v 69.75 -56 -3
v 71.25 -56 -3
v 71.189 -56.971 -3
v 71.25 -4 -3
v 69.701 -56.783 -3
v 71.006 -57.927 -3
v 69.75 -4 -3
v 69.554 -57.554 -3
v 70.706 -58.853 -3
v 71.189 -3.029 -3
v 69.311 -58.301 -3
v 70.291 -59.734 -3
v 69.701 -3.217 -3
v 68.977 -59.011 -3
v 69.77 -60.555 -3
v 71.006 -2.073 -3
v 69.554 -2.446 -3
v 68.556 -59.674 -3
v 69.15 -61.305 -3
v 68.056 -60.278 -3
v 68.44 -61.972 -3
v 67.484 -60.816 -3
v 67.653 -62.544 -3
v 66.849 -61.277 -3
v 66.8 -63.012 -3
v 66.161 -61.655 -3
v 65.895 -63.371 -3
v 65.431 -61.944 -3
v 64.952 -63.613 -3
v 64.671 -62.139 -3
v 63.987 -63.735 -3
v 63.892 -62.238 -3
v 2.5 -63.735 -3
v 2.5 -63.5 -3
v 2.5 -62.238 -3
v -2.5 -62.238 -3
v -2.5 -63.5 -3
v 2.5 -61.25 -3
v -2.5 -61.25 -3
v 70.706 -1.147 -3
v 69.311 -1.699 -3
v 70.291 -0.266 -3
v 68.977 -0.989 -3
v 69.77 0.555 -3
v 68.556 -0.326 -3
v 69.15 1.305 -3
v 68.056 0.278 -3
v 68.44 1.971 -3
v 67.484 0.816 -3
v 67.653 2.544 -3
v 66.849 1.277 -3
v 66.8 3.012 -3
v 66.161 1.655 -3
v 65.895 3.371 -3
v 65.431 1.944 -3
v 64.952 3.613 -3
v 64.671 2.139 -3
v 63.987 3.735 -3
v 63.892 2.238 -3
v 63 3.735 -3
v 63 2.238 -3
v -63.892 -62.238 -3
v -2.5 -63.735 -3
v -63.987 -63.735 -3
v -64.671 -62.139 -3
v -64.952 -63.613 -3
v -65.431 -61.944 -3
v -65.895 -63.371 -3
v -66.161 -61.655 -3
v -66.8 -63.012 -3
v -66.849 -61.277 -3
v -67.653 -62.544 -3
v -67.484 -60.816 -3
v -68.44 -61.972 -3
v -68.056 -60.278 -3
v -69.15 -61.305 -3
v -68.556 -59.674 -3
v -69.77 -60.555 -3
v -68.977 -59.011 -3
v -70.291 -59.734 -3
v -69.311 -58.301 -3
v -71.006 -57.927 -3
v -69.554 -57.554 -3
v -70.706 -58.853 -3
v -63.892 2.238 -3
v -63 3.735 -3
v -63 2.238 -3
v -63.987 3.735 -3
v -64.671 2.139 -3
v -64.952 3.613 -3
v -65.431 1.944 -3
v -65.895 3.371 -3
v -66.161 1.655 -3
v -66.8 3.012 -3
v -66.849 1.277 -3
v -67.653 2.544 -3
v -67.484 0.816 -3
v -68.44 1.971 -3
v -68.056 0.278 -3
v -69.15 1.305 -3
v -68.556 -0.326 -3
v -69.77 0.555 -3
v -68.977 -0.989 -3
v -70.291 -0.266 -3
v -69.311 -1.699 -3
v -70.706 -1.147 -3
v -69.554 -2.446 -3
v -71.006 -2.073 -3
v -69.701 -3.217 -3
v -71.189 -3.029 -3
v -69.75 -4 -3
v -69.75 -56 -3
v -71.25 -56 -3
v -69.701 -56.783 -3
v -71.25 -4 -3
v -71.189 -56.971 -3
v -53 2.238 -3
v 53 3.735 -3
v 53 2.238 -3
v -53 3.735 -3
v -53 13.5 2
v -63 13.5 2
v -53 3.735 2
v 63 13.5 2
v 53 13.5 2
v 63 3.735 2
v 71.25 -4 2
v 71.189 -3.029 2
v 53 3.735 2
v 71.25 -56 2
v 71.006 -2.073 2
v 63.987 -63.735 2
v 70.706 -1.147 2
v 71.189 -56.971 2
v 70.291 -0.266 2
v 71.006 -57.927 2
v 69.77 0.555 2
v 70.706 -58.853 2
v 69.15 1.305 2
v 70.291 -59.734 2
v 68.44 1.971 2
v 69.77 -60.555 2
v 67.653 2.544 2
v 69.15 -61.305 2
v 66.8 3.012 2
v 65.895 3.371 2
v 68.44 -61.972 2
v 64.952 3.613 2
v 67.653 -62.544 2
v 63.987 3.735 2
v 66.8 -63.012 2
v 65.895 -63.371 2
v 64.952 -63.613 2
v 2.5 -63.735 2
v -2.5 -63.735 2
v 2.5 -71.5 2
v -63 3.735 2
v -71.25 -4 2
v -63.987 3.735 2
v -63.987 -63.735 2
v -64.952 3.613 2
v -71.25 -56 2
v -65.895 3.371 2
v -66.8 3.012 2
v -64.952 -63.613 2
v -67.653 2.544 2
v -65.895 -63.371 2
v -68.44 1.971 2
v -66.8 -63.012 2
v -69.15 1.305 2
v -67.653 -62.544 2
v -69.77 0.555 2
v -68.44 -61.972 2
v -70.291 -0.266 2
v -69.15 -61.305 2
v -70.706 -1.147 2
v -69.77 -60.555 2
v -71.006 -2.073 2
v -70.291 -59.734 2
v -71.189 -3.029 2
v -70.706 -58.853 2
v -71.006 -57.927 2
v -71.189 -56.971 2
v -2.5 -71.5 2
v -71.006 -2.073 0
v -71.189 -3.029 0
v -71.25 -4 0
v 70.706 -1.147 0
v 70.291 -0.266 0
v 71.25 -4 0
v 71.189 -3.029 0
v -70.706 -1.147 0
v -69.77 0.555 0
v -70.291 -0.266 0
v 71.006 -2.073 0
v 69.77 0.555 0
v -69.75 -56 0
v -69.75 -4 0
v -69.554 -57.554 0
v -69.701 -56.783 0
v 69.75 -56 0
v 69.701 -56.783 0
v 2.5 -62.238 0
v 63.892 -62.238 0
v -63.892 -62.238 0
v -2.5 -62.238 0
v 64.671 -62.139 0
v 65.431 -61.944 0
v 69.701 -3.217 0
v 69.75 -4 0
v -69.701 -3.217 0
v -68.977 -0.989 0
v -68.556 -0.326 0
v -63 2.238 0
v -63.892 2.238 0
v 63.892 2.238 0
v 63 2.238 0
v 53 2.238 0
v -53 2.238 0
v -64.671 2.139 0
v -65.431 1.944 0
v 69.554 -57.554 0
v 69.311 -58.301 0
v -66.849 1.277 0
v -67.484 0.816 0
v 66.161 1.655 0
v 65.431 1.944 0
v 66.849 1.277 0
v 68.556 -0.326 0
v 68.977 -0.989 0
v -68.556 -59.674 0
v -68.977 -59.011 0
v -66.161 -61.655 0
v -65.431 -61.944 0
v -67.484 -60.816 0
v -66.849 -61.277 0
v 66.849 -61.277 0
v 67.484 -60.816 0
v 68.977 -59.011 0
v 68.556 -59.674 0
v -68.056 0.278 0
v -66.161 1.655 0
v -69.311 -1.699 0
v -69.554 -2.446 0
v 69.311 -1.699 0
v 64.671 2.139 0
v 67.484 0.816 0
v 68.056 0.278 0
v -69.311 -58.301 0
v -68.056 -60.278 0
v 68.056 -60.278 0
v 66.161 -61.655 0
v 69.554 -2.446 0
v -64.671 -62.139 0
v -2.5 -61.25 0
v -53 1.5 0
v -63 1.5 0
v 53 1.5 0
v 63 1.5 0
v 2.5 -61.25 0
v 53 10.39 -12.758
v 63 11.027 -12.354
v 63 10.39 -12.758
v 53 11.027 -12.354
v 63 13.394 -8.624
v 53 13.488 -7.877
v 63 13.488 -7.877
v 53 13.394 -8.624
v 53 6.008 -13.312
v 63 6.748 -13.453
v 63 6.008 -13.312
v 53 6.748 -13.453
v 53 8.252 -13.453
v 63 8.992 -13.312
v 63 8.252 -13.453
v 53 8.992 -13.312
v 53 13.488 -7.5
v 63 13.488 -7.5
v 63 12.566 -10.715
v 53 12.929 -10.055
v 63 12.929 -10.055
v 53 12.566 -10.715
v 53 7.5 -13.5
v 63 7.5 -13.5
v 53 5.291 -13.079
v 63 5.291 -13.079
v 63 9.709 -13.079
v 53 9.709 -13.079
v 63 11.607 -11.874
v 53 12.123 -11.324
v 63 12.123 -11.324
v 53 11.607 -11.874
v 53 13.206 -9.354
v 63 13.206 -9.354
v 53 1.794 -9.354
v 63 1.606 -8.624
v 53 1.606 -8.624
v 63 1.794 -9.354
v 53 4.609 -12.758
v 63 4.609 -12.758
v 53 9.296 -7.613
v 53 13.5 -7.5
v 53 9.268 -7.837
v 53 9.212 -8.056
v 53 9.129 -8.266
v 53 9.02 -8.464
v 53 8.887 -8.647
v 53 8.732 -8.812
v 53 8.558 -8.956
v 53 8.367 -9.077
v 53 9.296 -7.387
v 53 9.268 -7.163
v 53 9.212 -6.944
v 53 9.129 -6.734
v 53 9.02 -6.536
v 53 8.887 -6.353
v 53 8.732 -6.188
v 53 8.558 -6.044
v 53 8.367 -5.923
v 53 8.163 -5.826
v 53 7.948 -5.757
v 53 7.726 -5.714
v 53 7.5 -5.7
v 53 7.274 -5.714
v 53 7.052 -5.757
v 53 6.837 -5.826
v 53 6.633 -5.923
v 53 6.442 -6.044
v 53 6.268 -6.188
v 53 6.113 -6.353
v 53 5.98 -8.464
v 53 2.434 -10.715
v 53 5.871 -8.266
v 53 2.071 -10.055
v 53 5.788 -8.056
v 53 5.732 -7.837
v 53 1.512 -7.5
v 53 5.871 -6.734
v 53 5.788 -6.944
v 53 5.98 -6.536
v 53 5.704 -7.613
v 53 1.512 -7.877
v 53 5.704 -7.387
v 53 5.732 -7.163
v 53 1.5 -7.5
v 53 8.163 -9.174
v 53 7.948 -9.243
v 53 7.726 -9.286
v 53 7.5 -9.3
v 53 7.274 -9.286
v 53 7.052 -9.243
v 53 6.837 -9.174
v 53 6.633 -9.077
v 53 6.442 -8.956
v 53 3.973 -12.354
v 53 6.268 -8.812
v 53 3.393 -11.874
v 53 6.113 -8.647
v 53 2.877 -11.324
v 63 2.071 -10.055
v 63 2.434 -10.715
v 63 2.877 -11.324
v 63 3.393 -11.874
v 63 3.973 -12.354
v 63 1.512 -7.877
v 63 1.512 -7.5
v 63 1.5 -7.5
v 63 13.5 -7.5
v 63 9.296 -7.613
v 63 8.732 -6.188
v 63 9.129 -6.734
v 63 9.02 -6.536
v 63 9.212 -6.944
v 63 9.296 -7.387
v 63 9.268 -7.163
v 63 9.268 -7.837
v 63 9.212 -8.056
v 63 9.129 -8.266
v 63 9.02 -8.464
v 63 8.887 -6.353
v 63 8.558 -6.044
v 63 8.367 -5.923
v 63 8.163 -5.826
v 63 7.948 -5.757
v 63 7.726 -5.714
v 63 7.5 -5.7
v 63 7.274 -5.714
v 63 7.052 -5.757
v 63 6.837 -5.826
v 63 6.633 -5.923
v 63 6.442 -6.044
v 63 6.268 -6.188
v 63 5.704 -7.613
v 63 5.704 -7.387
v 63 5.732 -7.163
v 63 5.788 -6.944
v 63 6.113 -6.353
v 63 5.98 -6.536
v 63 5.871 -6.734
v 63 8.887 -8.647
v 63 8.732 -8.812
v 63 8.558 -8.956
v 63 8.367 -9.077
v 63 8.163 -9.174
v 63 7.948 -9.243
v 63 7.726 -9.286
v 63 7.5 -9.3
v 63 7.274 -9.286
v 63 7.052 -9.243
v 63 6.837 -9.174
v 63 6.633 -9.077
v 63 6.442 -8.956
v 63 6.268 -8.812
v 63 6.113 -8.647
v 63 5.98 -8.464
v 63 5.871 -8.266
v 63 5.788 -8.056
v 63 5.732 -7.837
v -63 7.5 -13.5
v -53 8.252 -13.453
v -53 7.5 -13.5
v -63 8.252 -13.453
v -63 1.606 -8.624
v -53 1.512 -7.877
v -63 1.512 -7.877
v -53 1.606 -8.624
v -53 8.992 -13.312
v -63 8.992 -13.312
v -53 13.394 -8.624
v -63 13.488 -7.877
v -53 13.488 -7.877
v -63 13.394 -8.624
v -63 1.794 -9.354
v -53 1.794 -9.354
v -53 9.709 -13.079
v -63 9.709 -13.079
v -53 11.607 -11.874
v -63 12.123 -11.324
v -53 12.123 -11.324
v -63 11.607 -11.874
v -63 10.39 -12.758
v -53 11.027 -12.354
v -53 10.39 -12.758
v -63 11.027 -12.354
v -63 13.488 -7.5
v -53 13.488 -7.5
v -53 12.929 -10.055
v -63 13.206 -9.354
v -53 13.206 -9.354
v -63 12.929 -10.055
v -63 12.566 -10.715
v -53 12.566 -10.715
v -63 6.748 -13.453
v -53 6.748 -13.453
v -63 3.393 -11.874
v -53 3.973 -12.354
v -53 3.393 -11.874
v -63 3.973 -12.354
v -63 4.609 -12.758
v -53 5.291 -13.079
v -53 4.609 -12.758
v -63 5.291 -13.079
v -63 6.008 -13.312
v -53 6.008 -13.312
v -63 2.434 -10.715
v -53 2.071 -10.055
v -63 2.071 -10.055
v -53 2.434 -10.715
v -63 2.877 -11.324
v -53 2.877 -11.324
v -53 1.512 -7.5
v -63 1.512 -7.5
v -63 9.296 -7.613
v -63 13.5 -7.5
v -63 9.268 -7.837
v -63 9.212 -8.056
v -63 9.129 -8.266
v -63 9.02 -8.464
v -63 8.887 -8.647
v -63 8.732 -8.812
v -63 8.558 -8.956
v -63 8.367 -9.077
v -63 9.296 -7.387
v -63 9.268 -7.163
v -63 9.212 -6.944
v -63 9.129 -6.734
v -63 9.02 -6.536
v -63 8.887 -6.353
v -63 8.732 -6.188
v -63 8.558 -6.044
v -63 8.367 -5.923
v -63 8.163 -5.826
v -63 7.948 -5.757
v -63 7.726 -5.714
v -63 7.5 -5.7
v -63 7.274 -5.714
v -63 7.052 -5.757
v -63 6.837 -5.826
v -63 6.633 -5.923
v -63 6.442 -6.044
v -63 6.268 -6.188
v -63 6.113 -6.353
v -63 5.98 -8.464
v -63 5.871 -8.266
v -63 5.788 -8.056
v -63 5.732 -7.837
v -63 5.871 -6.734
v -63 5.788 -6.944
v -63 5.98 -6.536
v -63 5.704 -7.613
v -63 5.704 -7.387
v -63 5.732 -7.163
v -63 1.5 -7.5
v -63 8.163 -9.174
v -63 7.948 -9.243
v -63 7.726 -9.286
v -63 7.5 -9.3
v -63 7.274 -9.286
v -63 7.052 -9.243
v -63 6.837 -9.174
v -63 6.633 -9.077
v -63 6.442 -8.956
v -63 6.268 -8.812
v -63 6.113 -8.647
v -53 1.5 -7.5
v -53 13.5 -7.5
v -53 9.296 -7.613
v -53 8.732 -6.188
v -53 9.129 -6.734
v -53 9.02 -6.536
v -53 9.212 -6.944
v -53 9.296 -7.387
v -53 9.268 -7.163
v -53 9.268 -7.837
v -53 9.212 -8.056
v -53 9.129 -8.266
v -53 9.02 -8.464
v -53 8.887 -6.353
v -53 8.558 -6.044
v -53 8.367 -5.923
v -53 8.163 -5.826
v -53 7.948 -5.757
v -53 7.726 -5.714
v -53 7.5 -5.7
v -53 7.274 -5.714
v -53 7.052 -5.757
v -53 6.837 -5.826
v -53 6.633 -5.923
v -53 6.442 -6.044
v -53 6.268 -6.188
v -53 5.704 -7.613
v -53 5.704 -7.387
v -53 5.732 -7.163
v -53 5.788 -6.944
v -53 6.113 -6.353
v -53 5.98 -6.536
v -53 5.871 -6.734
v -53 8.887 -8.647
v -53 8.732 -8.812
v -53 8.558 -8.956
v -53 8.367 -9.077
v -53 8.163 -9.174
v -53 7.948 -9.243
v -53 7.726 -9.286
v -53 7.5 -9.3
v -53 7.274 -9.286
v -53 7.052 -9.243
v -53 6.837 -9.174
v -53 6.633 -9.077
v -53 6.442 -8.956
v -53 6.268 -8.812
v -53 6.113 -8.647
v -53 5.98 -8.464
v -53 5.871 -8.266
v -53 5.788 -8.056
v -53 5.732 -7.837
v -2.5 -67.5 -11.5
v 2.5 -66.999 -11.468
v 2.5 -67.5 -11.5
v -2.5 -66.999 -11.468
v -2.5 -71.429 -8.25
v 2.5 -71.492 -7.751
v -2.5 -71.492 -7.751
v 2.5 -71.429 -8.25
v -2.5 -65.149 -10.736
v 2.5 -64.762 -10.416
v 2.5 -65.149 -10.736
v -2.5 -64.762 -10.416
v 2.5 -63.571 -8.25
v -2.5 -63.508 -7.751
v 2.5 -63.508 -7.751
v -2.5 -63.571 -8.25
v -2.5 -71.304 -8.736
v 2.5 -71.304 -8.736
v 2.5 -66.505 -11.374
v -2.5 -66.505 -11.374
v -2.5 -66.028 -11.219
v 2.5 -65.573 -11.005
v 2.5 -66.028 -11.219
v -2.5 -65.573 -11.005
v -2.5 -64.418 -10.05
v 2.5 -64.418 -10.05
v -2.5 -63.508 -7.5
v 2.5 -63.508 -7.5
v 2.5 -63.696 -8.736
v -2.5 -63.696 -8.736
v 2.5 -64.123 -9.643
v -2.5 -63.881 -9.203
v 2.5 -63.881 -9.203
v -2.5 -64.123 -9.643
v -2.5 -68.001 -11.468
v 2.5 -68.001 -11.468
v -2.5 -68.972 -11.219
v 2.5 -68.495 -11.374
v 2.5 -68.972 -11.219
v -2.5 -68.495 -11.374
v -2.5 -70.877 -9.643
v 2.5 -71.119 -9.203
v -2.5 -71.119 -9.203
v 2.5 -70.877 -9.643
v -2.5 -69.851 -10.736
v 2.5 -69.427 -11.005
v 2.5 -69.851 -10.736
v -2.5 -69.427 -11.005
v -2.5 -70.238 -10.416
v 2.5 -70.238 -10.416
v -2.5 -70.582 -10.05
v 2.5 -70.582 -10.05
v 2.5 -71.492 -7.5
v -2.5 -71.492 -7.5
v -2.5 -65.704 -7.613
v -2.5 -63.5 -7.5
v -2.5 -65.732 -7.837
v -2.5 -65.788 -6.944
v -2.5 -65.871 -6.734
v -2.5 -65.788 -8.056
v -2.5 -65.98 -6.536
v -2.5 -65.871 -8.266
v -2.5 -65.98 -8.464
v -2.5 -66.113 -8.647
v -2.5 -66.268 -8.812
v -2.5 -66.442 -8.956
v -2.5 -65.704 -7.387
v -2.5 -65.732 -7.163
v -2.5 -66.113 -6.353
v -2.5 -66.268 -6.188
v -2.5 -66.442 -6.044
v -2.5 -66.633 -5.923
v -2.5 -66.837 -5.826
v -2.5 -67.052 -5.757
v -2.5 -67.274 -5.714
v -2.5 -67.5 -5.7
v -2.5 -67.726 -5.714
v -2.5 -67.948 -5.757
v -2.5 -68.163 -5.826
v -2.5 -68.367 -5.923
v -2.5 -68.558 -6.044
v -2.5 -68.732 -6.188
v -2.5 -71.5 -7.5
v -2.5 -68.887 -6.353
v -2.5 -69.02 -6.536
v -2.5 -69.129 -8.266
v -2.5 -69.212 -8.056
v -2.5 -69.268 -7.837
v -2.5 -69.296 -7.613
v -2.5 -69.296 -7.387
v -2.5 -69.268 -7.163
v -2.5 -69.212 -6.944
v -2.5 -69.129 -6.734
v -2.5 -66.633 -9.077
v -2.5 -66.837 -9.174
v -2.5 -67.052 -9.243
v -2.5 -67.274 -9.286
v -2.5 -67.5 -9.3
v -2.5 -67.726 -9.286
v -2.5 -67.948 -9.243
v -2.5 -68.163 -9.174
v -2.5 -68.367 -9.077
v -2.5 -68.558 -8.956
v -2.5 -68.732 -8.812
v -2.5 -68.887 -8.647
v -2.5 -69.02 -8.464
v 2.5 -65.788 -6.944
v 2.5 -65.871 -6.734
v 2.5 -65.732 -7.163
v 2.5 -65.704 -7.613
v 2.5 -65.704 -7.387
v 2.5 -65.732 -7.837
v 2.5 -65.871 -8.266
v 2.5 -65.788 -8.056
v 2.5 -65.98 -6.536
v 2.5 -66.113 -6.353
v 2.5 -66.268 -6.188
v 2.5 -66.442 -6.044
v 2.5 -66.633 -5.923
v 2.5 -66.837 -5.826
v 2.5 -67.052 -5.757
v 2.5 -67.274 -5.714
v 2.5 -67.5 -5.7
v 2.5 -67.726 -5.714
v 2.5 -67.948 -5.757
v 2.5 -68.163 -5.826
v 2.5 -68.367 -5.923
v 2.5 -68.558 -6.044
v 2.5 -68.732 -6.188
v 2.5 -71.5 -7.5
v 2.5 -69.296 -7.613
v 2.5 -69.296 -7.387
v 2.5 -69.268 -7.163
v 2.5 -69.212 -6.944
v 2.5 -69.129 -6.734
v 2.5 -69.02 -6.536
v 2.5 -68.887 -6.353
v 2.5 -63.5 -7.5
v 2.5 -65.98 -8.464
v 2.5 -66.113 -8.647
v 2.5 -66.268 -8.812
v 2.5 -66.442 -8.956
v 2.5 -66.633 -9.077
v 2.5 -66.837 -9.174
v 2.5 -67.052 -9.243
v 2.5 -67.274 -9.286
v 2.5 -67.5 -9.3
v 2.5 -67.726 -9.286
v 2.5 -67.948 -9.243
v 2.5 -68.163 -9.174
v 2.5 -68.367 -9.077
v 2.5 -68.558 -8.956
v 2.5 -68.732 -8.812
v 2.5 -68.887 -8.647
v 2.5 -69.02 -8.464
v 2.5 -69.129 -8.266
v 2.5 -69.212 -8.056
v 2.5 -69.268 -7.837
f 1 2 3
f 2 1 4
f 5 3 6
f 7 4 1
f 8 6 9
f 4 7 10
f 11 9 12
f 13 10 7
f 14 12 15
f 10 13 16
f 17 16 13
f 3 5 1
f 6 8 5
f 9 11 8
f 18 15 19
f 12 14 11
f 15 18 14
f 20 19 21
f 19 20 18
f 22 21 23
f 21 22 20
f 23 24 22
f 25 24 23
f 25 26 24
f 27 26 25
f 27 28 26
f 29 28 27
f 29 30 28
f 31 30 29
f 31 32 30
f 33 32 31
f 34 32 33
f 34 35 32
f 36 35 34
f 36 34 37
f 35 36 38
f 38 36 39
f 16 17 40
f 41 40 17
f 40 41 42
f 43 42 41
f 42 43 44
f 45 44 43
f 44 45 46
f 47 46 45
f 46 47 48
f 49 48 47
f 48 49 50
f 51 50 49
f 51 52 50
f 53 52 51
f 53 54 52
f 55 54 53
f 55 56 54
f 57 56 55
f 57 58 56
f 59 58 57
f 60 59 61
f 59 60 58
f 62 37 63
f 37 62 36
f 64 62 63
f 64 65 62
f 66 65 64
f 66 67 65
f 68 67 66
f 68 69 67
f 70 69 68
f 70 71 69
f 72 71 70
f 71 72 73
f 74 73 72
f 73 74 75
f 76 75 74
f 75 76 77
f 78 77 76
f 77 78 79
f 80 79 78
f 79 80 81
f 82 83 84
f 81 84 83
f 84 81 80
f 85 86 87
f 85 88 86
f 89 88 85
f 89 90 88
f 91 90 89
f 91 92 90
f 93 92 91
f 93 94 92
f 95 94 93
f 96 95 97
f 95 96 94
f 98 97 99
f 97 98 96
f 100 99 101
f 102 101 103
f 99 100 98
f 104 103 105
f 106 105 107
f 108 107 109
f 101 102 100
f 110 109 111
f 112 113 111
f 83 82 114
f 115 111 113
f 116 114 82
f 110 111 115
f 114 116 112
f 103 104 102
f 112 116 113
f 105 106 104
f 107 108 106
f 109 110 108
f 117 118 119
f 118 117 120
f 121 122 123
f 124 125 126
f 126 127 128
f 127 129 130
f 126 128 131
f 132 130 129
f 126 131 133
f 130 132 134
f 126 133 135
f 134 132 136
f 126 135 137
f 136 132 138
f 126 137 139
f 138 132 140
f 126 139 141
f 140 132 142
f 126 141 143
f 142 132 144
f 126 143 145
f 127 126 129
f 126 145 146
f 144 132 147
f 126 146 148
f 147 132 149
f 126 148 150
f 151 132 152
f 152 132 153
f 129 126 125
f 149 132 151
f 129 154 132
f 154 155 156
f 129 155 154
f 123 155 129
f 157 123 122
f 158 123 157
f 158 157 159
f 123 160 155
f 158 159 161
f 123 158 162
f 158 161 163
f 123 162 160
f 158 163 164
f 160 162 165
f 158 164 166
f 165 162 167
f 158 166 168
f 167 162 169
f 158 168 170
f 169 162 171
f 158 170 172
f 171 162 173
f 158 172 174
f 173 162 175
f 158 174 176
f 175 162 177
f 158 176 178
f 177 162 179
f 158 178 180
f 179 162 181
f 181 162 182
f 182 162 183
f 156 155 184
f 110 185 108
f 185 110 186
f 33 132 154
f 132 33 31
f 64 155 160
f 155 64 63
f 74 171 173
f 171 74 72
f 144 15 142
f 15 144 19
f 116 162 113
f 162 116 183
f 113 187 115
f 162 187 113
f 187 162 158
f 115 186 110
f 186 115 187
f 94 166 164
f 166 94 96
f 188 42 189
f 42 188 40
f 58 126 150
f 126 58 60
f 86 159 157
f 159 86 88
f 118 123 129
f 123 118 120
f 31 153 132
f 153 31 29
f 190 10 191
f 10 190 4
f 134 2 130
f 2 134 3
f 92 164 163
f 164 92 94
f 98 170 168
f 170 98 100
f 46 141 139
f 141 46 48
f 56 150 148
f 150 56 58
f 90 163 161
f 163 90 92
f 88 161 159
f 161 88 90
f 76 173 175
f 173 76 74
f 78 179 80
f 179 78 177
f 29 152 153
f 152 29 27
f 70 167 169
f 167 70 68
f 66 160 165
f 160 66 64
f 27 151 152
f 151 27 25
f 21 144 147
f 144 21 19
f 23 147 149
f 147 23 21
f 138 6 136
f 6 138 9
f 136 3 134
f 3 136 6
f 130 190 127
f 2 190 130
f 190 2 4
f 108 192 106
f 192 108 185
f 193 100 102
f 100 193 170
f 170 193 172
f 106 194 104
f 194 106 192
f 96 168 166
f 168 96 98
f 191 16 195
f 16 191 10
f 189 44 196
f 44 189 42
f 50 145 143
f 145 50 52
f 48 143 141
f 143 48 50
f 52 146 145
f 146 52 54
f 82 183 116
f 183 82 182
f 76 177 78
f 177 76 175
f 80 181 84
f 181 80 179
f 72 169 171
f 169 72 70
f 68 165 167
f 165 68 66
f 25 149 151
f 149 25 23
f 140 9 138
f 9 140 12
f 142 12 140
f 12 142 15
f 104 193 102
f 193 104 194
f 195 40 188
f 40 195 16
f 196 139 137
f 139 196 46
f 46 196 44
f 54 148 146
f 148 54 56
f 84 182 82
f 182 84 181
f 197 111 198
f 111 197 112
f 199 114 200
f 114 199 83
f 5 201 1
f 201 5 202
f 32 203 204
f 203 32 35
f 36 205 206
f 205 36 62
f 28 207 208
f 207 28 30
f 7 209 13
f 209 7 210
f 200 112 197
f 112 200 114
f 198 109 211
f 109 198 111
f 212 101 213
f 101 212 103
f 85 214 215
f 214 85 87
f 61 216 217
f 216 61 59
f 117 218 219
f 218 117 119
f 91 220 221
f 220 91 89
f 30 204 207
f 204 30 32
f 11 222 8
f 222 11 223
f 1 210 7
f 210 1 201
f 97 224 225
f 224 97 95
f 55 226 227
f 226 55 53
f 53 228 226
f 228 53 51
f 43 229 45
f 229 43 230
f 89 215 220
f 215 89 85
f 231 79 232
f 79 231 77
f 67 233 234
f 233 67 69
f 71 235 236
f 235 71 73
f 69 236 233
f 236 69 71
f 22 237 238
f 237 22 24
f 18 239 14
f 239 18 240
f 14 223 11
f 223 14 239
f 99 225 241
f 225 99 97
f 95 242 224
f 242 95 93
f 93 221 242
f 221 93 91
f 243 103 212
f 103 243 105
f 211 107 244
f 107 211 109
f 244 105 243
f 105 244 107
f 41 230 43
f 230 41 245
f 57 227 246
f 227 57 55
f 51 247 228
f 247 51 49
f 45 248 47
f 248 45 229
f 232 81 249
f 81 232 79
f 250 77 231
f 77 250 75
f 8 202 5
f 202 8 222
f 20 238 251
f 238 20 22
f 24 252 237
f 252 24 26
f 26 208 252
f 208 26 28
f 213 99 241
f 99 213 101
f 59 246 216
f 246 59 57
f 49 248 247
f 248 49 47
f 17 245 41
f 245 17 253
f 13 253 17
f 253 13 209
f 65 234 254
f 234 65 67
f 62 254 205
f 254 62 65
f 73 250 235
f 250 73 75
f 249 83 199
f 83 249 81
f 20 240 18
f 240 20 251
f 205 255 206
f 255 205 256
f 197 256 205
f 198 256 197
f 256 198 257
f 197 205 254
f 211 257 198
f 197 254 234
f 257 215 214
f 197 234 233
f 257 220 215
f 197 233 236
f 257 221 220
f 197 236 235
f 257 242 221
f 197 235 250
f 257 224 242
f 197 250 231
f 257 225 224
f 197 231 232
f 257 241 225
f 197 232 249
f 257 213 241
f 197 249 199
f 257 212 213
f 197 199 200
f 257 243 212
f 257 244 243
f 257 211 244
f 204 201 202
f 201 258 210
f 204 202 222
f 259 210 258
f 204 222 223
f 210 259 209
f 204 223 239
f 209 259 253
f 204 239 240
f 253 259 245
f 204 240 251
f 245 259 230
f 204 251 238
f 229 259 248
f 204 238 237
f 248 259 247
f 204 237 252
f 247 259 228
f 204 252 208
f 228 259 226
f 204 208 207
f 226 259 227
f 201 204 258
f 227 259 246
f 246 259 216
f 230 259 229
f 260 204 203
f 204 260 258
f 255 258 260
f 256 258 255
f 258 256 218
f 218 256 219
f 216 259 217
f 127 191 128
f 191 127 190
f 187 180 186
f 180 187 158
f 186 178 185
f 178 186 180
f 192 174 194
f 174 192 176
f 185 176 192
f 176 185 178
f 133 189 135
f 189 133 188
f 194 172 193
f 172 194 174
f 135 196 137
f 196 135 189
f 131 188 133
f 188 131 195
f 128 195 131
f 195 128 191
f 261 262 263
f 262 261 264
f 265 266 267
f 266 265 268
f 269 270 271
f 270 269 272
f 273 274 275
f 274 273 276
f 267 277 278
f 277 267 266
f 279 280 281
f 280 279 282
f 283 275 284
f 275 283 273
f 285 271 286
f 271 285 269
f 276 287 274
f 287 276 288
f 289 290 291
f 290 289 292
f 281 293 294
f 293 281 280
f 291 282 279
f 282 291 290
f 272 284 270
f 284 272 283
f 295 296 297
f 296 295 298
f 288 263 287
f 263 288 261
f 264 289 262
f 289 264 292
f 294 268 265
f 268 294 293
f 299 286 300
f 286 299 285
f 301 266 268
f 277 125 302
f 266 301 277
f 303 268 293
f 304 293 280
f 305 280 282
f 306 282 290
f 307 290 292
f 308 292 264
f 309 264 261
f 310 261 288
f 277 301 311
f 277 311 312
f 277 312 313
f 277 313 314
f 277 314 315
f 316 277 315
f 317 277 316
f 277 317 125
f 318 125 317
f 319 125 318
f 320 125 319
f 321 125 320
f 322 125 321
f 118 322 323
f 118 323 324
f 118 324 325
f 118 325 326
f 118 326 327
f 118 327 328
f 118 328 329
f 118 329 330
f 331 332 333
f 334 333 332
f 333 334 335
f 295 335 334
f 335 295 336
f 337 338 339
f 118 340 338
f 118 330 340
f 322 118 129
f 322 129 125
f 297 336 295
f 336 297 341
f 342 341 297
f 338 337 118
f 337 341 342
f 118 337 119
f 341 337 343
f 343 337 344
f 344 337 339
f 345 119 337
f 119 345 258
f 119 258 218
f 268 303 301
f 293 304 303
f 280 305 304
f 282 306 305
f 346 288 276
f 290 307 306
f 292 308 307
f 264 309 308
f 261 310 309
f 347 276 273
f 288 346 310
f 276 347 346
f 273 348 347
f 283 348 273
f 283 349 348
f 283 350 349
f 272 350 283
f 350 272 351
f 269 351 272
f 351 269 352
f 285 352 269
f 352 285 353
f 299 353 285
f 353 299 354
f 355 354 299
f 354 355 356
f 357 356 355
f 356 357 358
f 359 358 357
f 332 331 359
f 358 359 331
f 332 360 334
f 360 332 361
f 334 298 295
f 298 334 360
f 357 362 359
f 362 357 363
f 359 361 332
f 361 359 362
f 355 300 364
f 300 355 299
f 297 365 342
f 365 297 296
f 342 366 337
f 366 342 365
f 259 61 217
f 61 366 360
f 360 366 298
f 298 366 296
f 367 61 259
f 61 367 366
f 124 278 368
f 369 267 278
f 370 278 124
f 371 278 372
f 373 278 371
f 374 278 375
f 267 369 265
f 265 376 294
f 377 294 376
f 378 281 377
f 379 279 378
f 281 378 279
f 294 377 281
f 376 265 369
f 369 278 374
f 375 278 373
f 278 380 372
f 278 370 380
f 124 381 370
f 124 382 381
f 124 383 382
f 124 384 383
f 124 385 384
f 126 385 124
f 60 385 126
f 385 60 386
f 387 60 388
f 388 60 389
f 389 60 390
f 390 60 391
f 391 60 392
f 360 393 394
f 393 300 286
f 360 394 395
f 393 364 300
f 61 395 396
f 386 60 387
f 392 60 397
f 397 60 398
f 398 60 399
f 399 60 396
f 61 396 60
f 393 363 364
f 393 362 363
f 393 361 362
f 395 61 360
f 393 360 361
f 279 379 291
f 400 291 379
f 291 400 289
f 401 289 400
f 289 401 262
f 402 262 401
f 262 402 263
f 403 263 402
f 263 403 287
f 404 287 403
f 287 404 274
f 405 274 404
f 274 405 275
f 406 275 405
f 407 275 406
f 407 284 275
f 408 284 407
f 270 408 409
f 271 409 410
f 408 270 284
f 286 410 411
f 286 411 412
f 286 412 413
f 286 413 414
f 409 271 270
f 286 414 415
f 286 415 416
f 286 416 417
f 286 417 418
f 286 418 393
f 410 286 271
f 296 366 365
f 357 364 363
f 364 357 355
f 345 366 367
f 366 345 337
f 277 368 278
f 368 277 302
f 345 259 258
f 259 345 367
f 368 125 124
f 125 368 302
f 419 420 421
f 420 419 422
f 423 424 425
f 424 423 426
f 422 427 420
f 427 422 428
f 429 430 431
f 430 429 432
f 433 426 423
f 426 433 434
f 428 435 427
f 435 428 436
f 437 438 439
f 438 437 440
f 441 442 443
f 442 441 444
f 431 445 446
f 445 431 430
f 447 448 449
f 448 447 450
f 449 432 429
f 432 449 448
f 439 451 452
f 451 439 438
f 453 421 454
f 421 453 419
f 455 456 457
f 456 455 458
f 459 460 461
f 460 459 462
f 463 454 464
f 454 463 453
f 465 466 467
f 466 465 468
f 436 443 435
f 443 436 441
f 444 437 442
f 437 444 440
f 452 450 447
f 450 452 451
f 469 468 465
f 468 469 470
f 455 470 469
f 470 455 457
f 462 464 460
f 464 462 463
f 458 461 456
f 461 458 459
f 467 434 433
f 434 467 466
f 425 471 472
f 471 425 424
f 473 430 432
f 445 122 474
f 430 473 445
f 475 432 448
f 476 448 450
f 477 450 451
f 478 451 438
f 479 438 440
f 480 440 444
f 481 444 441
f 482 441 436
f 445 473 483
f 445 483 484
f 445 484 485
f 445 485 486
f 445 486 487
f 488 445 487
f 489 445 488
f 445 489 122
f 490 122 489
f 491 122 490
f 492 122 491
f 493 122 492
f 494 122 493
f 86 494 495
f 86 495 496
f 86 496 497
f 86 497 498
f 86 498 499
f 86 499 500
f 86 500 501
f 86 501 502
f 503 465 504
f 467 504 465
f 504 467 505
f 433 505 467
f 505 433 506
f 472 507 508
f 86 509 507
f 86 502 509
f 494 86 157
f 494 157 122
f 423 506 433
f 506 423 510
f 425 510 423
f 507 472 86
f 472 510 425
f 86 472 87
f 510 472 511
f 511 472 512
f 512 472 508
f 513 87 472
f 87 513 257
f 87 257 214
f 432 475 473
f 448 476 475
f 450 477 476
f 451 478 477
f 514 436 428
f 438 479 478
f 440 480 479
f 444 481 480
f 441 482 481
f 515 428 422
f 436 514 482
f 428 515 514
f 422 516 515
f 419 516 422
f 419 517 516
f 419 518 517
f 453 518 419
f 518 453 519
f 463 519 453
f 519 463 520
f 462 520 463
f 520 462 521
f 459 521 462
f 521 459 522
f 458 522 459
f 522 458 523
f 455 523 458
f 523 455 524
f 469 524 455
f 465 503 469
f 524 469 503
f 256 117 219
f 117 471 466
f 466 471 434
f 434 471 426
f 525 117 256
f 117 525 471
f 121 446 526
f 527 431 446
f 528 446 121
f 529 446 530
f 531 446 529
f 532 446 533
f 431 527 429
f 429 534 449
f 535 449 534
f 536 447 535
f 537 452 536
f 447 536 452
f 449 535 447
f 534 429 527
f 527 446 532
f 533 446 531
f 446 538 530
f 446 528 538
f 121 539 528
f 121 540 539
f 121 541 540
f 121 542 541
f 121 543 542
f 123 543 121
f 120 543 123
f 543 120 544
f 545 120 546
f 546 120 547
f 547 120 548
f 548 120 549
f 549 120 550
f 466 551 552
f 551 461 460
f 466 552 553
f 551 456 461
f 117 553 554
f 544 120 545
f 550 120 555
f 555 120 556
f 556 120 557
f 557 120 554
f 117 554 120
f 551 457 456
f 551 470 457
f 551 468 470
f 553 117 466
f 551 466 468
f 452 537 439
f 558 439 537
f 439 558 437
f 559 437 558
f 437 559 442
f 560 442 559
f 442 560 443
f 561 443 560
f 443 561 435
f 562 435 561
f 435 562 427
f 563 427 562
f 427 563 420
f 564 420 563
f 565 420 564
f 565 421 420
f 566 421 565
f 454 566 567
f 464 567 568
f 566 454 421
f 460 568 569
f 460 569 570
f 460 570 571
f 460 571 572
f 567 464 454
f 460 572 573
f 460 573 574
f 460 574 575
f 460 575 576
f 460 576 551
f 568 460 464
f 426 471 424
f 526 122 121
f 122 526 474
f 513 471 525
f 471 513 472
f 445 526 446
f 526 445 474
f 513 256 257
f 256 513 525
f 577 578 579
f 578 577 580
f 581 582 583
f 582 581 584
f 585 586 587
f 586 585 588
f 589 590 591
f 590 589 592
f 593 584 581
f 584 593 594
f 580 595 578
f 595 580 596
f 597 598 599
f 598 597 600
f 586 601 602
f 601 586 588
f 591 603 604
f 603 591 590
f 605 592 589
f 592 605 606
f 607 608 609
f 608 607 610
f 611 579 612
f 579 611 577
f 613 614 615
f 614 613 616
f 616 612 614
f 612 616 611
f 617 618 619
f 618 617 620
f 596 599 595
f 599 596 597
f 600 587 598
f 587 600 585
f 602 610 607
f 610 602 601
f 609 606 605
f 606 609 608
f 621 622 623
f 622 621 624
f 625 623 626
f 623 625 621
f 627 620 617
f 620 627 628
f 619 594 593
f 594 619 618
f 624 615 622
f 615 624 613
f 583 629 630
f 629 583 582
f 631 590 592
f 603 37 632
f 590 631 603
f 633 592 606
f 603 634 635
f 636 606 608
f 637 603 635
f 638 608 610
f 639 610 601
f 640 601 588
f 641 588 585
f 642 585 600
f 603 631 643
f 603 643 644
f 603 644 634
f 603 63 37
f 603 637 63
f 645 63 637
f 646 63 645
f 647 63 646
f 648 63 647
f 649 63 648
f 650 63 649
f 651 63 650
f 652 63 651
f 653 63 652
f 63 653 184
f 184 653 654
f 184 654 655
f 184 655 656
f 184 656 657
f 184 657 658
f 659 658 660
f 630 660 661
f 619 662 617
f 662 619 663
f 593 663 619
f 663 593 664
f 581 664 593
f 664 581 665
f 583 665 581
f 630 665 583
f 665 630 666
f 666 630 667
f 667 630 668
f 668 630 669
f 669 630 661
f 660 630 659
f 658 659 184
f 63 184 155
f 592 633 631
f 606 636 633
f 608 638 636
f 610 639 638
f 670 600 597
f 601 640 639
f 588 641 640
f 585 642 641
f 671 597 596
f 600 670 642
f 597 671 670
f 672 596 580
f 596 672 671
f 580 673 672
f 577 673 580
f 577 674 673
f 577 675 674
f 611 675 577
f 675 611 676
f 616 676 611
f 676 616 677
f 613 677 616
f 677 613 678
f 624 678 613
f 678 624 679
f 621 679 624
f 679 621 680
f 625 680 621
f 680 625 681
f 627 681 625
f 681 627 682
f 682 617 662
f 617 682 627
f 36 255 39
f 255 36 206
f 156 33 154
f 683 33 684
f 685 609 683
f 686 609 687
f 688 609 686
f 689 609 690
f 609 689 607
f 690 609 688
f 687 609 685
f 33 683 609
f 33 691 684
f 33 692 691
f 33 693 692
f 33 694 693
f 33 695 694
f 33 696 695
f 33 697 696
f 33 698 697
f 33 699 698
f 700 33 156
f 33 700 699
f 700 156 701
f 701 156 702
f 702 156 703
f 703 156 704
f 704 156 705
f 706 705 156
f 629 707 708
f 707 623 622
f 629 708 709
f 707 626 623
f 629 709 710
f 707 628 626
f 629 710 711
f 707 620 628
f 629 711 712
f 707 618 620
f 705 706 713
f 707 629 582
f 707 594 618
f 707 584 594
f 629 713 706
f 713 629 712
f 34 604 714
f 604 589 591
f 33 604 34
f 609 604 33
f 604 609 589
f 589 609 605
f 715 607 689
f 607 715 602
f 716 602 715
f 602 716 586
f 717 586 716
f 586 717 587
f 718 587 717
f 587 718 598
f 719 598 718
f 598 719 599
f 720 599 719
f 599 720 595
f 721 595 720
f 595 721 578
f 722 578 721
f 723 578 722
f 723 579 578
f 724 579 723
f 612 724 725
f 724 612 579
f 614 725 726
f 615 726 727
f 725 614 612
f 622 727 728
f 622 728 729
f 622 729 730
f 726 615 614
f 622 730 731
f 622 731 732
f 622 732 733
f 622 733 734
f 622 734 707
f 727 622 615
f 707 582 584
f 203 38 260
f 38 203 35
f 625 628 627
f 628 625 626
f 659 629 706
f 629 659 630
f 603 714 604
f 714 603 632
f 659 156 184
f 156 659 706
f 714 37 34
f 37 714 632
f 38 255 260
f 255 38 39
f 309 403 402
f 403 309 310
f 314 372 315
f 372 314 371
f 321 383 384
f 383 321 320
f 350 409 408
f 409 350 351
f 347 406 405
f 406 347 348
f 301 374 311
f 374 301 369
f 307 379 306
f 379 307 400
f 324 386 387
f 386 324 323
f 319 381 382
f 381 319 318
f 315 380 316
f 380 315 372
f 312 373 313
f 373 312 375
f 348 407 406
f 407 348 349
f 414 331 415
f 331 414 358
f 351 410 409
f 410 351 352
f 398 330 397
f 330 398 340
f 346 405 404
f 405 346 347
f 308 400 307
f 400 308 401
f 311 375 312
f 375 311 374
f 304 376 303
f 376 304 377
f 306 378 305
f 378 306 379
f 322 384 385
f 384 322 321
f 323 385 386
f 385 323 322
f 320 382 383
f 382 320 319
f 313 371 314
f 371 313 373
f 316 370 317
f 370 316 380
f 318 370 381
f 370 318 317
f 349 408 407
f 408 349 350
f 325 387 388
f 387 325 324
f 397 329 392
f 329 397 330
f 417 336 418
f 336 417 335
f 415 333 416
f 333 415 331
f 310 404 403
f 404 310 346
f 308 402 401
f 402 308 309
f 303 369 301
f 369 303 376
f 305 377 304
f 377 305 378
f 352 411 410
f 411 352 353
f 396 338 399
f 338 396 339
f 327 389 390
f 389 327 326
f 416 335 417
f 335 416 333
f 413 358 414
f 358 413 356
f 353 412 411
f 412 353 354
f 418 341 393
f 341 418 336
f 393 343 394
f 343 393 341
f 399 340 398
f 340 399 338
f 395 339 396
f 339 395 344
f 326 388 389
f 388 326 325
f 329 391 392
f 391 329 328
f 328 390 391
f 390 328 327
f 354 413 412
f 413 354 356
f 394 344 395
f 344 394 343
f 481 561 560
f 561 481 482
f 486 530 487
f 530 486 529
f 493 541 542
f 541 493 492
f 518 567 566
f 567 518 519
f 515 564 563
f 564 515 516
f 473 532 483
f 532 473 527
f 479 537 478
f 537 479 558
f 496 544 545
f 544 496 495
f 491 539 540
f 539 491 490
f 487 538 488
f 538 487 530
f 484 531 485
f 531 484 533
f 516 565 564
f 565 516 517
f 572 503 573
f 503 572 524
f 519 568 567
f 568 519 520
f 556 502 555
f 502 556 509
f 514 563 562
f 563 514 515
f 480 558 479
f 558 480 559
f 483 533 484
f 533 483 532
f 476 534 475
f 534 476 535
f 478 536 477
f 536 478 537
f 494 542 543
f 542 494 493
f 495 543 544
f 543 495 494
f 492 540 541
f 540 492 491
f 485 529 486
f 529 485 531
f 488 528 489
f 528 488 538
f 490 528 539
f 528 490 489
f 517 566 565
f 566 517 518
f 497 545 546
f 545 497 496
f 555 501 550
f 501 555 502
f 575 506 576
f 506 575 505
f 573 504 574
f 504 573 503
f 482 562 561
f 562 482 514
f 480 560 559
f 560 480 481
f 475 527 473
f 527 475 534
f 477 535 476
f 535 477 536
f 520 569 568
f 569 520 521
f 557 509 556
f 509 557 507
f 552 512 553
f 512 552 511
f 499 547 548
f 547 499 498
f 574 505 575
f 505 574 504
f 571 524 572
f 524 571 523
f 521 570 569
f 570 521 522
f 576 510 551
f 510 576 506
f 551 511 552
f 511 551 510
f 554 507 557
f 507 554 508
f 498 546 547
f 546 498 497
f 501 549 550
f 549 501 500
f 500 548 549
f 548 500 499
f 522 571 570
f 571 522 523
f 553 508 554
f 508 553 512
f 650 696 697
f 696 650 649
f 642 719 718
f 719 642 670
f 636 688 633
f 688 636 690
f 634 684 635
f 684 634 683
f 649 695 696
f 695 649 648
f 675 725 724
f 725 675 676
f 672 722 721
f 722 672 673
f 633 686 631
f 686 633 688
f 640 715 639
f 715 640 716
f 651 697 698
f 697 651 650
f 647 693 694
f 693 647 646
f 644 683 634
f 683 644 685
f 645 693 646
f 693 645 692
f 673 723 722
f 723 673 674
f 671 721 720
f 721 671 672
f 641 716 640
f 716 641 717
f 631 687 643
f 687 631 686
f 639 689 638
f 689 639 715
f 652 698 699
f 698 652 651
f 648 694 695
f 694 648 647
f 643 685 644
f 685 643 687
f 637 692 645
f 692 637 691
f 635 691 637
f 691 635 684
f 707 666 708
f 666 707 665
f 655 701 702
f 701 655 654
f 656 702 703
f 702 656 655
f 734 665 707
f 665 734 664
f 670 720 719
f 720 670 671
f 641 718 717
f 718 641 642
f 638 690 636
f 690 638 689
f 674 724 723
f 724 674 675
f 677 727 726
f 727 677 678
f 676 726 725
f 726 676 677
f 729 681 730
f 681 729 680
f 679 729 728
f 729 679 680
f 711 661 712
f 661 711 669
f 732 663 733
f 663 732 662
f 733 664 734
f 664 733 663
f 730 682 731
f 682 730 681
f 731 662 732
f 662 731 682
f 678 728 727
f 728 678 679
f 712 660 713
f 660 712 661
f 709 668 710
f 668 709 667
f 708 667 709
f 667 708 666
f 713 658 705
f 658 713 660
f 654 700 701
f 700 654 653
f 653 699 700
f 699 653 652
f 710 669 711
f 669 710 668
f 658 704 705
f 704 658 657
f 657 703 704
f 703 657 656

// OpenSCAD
$fn = 50;


difference() {
	union() {
		translate(v = [0, -30.0000000000, -3]) {
			rotate(a = [0, 0, 0]) {
				difference() {
					union() {
						hull() {
							translate(v = [-63.5000000000, 26.0000000000, 0]) {
								cylinder(h = 5, r = 7.7500000000);
							}
							translate(v = [63.5000000000, 26.0000000000, 0]) {
								cylinder(h = 5, r = 7.7500000000);
							}
							translate(v = [-63.5000000000, -26.0000000000, 0]) {
								cylinder(h = 5, r = 7.7500000000);
							}
							translate(v = [63.5000000000, -26.0000000000, 0]) {
								cylinder(h = 5, r = 7.7500000000);
							}
						}
					}
					union() {
						hull() {
							translate(v = [-63.5000000000, 26.0000000000, 0]) {
								cylinder(h = 5, r = 6.2500000000);
							}
							translate(v = [63.5000000000, 26.0000000000, 0]) {
								cylinder(h = 5, r = 6.2500000000);
							}
							translate(v = [-63.5000000000, -26.0000000000, 0]) {
								cylinder(h = 5, r = 6.2500000000);
							}
							translate(v = [63.5000000000, -26.0000000000, 0]) {
								cylinder(h = 5, r = 6.2500000000);
							}
						}
					}
				}
			}
		}
		translate(v = [0, -30.0000000000, 0]) {
			hull() {
				translate(v = [-63.5000000000, 26.0000000000, 0]) {
					cylinder(h = 2, r = 7.7500000000);
				}
				translate(v = [63.5000000000, 26.0000000000, 0]) {
					cylinder(h = 2, r = 7.7500000000);
				}
				translate(v = [-63.5000000000, -26.0000000000, 0]) {
					cylinder(h = 2, r = 7.7500000000);
				}
				translate(v = [63.5000000000, -26.0000000000, 0]) {
					cylinder(h = 2, r = 7.7500000000);
				}
			}
		}
		translate(v = [53.0000000000, 7.5000000000, -7.5000000000]) {
			rotate(a = [0, 90, 0]) {
				cylinder(h = 10, r = 6.0000000000);
			}
		}
		translate(v = [53.0000000000, 1.5000000000, -7.5000000000]) {
			cube(size = [10, 12, 7.5000000000]);
		}
		translate(v = [53.0000000000, -15.0000000000, 0.0000000000]) {
			cube(size = [10, 28.5000000000, 2]);
		}
		translate(v = [-63.0000000000, 7.5000000000, -7.5000000000]) {
			rotate(a = [0, 90, 0]) {
				cylinder(h = 10, r = 6.0000000000);
			}
		}
		translate(v = [-63.0000000000, 1.5000000000, -7.5000000000]) {
			cube(size = [10, 12, 7.5000000000]);
		}
		translate(v = [-63.0000000000, -15.0000000000, 0.0000000000]) {
			cube(size = [10, 28.5000000000, 2]);
		}
		translate(v = [-2.5000000000, -67.5000000000, -7.5000000000]) {
			rotate(a = [0, 90, 0]) {
				cylinder(h = 5, r = 4.0000000000);
			}
		}
		translate(v = [-2.5000000000, -71.5000000000, -7.5000000000]) {
			cube(size = [5, 8, 7.5000000000]);
		}
		translate(v = [-2.5000000000, -71.5000000000, -3.0000000000]) {
			cube(size = [5, 10.2500000000, 5]);
		}
	}
	union() {
		translate(v = [53.0000000000, 7.5000000000, -7.5000000000]) {
			rotate(a = [0, 90, 0]) {
				cylinder(h = 10, r = 1.8000000000);
			}
		}
		translate(v = [-63.0000000000, 7.5000000000, -7.5000000000]) {
			rotate(a = [0, 90, 0]) {
				cylinder(h = 10, r = 1.8000000000);
			}
		}
		translate(v = [-5.0000000000, -67.5000000000, -7.5000000000]) {
			rotate(a = [0, 90, 0]) {
				cylinder(h = 10, r = 1.8000000000);
			}
		}
	}
}
